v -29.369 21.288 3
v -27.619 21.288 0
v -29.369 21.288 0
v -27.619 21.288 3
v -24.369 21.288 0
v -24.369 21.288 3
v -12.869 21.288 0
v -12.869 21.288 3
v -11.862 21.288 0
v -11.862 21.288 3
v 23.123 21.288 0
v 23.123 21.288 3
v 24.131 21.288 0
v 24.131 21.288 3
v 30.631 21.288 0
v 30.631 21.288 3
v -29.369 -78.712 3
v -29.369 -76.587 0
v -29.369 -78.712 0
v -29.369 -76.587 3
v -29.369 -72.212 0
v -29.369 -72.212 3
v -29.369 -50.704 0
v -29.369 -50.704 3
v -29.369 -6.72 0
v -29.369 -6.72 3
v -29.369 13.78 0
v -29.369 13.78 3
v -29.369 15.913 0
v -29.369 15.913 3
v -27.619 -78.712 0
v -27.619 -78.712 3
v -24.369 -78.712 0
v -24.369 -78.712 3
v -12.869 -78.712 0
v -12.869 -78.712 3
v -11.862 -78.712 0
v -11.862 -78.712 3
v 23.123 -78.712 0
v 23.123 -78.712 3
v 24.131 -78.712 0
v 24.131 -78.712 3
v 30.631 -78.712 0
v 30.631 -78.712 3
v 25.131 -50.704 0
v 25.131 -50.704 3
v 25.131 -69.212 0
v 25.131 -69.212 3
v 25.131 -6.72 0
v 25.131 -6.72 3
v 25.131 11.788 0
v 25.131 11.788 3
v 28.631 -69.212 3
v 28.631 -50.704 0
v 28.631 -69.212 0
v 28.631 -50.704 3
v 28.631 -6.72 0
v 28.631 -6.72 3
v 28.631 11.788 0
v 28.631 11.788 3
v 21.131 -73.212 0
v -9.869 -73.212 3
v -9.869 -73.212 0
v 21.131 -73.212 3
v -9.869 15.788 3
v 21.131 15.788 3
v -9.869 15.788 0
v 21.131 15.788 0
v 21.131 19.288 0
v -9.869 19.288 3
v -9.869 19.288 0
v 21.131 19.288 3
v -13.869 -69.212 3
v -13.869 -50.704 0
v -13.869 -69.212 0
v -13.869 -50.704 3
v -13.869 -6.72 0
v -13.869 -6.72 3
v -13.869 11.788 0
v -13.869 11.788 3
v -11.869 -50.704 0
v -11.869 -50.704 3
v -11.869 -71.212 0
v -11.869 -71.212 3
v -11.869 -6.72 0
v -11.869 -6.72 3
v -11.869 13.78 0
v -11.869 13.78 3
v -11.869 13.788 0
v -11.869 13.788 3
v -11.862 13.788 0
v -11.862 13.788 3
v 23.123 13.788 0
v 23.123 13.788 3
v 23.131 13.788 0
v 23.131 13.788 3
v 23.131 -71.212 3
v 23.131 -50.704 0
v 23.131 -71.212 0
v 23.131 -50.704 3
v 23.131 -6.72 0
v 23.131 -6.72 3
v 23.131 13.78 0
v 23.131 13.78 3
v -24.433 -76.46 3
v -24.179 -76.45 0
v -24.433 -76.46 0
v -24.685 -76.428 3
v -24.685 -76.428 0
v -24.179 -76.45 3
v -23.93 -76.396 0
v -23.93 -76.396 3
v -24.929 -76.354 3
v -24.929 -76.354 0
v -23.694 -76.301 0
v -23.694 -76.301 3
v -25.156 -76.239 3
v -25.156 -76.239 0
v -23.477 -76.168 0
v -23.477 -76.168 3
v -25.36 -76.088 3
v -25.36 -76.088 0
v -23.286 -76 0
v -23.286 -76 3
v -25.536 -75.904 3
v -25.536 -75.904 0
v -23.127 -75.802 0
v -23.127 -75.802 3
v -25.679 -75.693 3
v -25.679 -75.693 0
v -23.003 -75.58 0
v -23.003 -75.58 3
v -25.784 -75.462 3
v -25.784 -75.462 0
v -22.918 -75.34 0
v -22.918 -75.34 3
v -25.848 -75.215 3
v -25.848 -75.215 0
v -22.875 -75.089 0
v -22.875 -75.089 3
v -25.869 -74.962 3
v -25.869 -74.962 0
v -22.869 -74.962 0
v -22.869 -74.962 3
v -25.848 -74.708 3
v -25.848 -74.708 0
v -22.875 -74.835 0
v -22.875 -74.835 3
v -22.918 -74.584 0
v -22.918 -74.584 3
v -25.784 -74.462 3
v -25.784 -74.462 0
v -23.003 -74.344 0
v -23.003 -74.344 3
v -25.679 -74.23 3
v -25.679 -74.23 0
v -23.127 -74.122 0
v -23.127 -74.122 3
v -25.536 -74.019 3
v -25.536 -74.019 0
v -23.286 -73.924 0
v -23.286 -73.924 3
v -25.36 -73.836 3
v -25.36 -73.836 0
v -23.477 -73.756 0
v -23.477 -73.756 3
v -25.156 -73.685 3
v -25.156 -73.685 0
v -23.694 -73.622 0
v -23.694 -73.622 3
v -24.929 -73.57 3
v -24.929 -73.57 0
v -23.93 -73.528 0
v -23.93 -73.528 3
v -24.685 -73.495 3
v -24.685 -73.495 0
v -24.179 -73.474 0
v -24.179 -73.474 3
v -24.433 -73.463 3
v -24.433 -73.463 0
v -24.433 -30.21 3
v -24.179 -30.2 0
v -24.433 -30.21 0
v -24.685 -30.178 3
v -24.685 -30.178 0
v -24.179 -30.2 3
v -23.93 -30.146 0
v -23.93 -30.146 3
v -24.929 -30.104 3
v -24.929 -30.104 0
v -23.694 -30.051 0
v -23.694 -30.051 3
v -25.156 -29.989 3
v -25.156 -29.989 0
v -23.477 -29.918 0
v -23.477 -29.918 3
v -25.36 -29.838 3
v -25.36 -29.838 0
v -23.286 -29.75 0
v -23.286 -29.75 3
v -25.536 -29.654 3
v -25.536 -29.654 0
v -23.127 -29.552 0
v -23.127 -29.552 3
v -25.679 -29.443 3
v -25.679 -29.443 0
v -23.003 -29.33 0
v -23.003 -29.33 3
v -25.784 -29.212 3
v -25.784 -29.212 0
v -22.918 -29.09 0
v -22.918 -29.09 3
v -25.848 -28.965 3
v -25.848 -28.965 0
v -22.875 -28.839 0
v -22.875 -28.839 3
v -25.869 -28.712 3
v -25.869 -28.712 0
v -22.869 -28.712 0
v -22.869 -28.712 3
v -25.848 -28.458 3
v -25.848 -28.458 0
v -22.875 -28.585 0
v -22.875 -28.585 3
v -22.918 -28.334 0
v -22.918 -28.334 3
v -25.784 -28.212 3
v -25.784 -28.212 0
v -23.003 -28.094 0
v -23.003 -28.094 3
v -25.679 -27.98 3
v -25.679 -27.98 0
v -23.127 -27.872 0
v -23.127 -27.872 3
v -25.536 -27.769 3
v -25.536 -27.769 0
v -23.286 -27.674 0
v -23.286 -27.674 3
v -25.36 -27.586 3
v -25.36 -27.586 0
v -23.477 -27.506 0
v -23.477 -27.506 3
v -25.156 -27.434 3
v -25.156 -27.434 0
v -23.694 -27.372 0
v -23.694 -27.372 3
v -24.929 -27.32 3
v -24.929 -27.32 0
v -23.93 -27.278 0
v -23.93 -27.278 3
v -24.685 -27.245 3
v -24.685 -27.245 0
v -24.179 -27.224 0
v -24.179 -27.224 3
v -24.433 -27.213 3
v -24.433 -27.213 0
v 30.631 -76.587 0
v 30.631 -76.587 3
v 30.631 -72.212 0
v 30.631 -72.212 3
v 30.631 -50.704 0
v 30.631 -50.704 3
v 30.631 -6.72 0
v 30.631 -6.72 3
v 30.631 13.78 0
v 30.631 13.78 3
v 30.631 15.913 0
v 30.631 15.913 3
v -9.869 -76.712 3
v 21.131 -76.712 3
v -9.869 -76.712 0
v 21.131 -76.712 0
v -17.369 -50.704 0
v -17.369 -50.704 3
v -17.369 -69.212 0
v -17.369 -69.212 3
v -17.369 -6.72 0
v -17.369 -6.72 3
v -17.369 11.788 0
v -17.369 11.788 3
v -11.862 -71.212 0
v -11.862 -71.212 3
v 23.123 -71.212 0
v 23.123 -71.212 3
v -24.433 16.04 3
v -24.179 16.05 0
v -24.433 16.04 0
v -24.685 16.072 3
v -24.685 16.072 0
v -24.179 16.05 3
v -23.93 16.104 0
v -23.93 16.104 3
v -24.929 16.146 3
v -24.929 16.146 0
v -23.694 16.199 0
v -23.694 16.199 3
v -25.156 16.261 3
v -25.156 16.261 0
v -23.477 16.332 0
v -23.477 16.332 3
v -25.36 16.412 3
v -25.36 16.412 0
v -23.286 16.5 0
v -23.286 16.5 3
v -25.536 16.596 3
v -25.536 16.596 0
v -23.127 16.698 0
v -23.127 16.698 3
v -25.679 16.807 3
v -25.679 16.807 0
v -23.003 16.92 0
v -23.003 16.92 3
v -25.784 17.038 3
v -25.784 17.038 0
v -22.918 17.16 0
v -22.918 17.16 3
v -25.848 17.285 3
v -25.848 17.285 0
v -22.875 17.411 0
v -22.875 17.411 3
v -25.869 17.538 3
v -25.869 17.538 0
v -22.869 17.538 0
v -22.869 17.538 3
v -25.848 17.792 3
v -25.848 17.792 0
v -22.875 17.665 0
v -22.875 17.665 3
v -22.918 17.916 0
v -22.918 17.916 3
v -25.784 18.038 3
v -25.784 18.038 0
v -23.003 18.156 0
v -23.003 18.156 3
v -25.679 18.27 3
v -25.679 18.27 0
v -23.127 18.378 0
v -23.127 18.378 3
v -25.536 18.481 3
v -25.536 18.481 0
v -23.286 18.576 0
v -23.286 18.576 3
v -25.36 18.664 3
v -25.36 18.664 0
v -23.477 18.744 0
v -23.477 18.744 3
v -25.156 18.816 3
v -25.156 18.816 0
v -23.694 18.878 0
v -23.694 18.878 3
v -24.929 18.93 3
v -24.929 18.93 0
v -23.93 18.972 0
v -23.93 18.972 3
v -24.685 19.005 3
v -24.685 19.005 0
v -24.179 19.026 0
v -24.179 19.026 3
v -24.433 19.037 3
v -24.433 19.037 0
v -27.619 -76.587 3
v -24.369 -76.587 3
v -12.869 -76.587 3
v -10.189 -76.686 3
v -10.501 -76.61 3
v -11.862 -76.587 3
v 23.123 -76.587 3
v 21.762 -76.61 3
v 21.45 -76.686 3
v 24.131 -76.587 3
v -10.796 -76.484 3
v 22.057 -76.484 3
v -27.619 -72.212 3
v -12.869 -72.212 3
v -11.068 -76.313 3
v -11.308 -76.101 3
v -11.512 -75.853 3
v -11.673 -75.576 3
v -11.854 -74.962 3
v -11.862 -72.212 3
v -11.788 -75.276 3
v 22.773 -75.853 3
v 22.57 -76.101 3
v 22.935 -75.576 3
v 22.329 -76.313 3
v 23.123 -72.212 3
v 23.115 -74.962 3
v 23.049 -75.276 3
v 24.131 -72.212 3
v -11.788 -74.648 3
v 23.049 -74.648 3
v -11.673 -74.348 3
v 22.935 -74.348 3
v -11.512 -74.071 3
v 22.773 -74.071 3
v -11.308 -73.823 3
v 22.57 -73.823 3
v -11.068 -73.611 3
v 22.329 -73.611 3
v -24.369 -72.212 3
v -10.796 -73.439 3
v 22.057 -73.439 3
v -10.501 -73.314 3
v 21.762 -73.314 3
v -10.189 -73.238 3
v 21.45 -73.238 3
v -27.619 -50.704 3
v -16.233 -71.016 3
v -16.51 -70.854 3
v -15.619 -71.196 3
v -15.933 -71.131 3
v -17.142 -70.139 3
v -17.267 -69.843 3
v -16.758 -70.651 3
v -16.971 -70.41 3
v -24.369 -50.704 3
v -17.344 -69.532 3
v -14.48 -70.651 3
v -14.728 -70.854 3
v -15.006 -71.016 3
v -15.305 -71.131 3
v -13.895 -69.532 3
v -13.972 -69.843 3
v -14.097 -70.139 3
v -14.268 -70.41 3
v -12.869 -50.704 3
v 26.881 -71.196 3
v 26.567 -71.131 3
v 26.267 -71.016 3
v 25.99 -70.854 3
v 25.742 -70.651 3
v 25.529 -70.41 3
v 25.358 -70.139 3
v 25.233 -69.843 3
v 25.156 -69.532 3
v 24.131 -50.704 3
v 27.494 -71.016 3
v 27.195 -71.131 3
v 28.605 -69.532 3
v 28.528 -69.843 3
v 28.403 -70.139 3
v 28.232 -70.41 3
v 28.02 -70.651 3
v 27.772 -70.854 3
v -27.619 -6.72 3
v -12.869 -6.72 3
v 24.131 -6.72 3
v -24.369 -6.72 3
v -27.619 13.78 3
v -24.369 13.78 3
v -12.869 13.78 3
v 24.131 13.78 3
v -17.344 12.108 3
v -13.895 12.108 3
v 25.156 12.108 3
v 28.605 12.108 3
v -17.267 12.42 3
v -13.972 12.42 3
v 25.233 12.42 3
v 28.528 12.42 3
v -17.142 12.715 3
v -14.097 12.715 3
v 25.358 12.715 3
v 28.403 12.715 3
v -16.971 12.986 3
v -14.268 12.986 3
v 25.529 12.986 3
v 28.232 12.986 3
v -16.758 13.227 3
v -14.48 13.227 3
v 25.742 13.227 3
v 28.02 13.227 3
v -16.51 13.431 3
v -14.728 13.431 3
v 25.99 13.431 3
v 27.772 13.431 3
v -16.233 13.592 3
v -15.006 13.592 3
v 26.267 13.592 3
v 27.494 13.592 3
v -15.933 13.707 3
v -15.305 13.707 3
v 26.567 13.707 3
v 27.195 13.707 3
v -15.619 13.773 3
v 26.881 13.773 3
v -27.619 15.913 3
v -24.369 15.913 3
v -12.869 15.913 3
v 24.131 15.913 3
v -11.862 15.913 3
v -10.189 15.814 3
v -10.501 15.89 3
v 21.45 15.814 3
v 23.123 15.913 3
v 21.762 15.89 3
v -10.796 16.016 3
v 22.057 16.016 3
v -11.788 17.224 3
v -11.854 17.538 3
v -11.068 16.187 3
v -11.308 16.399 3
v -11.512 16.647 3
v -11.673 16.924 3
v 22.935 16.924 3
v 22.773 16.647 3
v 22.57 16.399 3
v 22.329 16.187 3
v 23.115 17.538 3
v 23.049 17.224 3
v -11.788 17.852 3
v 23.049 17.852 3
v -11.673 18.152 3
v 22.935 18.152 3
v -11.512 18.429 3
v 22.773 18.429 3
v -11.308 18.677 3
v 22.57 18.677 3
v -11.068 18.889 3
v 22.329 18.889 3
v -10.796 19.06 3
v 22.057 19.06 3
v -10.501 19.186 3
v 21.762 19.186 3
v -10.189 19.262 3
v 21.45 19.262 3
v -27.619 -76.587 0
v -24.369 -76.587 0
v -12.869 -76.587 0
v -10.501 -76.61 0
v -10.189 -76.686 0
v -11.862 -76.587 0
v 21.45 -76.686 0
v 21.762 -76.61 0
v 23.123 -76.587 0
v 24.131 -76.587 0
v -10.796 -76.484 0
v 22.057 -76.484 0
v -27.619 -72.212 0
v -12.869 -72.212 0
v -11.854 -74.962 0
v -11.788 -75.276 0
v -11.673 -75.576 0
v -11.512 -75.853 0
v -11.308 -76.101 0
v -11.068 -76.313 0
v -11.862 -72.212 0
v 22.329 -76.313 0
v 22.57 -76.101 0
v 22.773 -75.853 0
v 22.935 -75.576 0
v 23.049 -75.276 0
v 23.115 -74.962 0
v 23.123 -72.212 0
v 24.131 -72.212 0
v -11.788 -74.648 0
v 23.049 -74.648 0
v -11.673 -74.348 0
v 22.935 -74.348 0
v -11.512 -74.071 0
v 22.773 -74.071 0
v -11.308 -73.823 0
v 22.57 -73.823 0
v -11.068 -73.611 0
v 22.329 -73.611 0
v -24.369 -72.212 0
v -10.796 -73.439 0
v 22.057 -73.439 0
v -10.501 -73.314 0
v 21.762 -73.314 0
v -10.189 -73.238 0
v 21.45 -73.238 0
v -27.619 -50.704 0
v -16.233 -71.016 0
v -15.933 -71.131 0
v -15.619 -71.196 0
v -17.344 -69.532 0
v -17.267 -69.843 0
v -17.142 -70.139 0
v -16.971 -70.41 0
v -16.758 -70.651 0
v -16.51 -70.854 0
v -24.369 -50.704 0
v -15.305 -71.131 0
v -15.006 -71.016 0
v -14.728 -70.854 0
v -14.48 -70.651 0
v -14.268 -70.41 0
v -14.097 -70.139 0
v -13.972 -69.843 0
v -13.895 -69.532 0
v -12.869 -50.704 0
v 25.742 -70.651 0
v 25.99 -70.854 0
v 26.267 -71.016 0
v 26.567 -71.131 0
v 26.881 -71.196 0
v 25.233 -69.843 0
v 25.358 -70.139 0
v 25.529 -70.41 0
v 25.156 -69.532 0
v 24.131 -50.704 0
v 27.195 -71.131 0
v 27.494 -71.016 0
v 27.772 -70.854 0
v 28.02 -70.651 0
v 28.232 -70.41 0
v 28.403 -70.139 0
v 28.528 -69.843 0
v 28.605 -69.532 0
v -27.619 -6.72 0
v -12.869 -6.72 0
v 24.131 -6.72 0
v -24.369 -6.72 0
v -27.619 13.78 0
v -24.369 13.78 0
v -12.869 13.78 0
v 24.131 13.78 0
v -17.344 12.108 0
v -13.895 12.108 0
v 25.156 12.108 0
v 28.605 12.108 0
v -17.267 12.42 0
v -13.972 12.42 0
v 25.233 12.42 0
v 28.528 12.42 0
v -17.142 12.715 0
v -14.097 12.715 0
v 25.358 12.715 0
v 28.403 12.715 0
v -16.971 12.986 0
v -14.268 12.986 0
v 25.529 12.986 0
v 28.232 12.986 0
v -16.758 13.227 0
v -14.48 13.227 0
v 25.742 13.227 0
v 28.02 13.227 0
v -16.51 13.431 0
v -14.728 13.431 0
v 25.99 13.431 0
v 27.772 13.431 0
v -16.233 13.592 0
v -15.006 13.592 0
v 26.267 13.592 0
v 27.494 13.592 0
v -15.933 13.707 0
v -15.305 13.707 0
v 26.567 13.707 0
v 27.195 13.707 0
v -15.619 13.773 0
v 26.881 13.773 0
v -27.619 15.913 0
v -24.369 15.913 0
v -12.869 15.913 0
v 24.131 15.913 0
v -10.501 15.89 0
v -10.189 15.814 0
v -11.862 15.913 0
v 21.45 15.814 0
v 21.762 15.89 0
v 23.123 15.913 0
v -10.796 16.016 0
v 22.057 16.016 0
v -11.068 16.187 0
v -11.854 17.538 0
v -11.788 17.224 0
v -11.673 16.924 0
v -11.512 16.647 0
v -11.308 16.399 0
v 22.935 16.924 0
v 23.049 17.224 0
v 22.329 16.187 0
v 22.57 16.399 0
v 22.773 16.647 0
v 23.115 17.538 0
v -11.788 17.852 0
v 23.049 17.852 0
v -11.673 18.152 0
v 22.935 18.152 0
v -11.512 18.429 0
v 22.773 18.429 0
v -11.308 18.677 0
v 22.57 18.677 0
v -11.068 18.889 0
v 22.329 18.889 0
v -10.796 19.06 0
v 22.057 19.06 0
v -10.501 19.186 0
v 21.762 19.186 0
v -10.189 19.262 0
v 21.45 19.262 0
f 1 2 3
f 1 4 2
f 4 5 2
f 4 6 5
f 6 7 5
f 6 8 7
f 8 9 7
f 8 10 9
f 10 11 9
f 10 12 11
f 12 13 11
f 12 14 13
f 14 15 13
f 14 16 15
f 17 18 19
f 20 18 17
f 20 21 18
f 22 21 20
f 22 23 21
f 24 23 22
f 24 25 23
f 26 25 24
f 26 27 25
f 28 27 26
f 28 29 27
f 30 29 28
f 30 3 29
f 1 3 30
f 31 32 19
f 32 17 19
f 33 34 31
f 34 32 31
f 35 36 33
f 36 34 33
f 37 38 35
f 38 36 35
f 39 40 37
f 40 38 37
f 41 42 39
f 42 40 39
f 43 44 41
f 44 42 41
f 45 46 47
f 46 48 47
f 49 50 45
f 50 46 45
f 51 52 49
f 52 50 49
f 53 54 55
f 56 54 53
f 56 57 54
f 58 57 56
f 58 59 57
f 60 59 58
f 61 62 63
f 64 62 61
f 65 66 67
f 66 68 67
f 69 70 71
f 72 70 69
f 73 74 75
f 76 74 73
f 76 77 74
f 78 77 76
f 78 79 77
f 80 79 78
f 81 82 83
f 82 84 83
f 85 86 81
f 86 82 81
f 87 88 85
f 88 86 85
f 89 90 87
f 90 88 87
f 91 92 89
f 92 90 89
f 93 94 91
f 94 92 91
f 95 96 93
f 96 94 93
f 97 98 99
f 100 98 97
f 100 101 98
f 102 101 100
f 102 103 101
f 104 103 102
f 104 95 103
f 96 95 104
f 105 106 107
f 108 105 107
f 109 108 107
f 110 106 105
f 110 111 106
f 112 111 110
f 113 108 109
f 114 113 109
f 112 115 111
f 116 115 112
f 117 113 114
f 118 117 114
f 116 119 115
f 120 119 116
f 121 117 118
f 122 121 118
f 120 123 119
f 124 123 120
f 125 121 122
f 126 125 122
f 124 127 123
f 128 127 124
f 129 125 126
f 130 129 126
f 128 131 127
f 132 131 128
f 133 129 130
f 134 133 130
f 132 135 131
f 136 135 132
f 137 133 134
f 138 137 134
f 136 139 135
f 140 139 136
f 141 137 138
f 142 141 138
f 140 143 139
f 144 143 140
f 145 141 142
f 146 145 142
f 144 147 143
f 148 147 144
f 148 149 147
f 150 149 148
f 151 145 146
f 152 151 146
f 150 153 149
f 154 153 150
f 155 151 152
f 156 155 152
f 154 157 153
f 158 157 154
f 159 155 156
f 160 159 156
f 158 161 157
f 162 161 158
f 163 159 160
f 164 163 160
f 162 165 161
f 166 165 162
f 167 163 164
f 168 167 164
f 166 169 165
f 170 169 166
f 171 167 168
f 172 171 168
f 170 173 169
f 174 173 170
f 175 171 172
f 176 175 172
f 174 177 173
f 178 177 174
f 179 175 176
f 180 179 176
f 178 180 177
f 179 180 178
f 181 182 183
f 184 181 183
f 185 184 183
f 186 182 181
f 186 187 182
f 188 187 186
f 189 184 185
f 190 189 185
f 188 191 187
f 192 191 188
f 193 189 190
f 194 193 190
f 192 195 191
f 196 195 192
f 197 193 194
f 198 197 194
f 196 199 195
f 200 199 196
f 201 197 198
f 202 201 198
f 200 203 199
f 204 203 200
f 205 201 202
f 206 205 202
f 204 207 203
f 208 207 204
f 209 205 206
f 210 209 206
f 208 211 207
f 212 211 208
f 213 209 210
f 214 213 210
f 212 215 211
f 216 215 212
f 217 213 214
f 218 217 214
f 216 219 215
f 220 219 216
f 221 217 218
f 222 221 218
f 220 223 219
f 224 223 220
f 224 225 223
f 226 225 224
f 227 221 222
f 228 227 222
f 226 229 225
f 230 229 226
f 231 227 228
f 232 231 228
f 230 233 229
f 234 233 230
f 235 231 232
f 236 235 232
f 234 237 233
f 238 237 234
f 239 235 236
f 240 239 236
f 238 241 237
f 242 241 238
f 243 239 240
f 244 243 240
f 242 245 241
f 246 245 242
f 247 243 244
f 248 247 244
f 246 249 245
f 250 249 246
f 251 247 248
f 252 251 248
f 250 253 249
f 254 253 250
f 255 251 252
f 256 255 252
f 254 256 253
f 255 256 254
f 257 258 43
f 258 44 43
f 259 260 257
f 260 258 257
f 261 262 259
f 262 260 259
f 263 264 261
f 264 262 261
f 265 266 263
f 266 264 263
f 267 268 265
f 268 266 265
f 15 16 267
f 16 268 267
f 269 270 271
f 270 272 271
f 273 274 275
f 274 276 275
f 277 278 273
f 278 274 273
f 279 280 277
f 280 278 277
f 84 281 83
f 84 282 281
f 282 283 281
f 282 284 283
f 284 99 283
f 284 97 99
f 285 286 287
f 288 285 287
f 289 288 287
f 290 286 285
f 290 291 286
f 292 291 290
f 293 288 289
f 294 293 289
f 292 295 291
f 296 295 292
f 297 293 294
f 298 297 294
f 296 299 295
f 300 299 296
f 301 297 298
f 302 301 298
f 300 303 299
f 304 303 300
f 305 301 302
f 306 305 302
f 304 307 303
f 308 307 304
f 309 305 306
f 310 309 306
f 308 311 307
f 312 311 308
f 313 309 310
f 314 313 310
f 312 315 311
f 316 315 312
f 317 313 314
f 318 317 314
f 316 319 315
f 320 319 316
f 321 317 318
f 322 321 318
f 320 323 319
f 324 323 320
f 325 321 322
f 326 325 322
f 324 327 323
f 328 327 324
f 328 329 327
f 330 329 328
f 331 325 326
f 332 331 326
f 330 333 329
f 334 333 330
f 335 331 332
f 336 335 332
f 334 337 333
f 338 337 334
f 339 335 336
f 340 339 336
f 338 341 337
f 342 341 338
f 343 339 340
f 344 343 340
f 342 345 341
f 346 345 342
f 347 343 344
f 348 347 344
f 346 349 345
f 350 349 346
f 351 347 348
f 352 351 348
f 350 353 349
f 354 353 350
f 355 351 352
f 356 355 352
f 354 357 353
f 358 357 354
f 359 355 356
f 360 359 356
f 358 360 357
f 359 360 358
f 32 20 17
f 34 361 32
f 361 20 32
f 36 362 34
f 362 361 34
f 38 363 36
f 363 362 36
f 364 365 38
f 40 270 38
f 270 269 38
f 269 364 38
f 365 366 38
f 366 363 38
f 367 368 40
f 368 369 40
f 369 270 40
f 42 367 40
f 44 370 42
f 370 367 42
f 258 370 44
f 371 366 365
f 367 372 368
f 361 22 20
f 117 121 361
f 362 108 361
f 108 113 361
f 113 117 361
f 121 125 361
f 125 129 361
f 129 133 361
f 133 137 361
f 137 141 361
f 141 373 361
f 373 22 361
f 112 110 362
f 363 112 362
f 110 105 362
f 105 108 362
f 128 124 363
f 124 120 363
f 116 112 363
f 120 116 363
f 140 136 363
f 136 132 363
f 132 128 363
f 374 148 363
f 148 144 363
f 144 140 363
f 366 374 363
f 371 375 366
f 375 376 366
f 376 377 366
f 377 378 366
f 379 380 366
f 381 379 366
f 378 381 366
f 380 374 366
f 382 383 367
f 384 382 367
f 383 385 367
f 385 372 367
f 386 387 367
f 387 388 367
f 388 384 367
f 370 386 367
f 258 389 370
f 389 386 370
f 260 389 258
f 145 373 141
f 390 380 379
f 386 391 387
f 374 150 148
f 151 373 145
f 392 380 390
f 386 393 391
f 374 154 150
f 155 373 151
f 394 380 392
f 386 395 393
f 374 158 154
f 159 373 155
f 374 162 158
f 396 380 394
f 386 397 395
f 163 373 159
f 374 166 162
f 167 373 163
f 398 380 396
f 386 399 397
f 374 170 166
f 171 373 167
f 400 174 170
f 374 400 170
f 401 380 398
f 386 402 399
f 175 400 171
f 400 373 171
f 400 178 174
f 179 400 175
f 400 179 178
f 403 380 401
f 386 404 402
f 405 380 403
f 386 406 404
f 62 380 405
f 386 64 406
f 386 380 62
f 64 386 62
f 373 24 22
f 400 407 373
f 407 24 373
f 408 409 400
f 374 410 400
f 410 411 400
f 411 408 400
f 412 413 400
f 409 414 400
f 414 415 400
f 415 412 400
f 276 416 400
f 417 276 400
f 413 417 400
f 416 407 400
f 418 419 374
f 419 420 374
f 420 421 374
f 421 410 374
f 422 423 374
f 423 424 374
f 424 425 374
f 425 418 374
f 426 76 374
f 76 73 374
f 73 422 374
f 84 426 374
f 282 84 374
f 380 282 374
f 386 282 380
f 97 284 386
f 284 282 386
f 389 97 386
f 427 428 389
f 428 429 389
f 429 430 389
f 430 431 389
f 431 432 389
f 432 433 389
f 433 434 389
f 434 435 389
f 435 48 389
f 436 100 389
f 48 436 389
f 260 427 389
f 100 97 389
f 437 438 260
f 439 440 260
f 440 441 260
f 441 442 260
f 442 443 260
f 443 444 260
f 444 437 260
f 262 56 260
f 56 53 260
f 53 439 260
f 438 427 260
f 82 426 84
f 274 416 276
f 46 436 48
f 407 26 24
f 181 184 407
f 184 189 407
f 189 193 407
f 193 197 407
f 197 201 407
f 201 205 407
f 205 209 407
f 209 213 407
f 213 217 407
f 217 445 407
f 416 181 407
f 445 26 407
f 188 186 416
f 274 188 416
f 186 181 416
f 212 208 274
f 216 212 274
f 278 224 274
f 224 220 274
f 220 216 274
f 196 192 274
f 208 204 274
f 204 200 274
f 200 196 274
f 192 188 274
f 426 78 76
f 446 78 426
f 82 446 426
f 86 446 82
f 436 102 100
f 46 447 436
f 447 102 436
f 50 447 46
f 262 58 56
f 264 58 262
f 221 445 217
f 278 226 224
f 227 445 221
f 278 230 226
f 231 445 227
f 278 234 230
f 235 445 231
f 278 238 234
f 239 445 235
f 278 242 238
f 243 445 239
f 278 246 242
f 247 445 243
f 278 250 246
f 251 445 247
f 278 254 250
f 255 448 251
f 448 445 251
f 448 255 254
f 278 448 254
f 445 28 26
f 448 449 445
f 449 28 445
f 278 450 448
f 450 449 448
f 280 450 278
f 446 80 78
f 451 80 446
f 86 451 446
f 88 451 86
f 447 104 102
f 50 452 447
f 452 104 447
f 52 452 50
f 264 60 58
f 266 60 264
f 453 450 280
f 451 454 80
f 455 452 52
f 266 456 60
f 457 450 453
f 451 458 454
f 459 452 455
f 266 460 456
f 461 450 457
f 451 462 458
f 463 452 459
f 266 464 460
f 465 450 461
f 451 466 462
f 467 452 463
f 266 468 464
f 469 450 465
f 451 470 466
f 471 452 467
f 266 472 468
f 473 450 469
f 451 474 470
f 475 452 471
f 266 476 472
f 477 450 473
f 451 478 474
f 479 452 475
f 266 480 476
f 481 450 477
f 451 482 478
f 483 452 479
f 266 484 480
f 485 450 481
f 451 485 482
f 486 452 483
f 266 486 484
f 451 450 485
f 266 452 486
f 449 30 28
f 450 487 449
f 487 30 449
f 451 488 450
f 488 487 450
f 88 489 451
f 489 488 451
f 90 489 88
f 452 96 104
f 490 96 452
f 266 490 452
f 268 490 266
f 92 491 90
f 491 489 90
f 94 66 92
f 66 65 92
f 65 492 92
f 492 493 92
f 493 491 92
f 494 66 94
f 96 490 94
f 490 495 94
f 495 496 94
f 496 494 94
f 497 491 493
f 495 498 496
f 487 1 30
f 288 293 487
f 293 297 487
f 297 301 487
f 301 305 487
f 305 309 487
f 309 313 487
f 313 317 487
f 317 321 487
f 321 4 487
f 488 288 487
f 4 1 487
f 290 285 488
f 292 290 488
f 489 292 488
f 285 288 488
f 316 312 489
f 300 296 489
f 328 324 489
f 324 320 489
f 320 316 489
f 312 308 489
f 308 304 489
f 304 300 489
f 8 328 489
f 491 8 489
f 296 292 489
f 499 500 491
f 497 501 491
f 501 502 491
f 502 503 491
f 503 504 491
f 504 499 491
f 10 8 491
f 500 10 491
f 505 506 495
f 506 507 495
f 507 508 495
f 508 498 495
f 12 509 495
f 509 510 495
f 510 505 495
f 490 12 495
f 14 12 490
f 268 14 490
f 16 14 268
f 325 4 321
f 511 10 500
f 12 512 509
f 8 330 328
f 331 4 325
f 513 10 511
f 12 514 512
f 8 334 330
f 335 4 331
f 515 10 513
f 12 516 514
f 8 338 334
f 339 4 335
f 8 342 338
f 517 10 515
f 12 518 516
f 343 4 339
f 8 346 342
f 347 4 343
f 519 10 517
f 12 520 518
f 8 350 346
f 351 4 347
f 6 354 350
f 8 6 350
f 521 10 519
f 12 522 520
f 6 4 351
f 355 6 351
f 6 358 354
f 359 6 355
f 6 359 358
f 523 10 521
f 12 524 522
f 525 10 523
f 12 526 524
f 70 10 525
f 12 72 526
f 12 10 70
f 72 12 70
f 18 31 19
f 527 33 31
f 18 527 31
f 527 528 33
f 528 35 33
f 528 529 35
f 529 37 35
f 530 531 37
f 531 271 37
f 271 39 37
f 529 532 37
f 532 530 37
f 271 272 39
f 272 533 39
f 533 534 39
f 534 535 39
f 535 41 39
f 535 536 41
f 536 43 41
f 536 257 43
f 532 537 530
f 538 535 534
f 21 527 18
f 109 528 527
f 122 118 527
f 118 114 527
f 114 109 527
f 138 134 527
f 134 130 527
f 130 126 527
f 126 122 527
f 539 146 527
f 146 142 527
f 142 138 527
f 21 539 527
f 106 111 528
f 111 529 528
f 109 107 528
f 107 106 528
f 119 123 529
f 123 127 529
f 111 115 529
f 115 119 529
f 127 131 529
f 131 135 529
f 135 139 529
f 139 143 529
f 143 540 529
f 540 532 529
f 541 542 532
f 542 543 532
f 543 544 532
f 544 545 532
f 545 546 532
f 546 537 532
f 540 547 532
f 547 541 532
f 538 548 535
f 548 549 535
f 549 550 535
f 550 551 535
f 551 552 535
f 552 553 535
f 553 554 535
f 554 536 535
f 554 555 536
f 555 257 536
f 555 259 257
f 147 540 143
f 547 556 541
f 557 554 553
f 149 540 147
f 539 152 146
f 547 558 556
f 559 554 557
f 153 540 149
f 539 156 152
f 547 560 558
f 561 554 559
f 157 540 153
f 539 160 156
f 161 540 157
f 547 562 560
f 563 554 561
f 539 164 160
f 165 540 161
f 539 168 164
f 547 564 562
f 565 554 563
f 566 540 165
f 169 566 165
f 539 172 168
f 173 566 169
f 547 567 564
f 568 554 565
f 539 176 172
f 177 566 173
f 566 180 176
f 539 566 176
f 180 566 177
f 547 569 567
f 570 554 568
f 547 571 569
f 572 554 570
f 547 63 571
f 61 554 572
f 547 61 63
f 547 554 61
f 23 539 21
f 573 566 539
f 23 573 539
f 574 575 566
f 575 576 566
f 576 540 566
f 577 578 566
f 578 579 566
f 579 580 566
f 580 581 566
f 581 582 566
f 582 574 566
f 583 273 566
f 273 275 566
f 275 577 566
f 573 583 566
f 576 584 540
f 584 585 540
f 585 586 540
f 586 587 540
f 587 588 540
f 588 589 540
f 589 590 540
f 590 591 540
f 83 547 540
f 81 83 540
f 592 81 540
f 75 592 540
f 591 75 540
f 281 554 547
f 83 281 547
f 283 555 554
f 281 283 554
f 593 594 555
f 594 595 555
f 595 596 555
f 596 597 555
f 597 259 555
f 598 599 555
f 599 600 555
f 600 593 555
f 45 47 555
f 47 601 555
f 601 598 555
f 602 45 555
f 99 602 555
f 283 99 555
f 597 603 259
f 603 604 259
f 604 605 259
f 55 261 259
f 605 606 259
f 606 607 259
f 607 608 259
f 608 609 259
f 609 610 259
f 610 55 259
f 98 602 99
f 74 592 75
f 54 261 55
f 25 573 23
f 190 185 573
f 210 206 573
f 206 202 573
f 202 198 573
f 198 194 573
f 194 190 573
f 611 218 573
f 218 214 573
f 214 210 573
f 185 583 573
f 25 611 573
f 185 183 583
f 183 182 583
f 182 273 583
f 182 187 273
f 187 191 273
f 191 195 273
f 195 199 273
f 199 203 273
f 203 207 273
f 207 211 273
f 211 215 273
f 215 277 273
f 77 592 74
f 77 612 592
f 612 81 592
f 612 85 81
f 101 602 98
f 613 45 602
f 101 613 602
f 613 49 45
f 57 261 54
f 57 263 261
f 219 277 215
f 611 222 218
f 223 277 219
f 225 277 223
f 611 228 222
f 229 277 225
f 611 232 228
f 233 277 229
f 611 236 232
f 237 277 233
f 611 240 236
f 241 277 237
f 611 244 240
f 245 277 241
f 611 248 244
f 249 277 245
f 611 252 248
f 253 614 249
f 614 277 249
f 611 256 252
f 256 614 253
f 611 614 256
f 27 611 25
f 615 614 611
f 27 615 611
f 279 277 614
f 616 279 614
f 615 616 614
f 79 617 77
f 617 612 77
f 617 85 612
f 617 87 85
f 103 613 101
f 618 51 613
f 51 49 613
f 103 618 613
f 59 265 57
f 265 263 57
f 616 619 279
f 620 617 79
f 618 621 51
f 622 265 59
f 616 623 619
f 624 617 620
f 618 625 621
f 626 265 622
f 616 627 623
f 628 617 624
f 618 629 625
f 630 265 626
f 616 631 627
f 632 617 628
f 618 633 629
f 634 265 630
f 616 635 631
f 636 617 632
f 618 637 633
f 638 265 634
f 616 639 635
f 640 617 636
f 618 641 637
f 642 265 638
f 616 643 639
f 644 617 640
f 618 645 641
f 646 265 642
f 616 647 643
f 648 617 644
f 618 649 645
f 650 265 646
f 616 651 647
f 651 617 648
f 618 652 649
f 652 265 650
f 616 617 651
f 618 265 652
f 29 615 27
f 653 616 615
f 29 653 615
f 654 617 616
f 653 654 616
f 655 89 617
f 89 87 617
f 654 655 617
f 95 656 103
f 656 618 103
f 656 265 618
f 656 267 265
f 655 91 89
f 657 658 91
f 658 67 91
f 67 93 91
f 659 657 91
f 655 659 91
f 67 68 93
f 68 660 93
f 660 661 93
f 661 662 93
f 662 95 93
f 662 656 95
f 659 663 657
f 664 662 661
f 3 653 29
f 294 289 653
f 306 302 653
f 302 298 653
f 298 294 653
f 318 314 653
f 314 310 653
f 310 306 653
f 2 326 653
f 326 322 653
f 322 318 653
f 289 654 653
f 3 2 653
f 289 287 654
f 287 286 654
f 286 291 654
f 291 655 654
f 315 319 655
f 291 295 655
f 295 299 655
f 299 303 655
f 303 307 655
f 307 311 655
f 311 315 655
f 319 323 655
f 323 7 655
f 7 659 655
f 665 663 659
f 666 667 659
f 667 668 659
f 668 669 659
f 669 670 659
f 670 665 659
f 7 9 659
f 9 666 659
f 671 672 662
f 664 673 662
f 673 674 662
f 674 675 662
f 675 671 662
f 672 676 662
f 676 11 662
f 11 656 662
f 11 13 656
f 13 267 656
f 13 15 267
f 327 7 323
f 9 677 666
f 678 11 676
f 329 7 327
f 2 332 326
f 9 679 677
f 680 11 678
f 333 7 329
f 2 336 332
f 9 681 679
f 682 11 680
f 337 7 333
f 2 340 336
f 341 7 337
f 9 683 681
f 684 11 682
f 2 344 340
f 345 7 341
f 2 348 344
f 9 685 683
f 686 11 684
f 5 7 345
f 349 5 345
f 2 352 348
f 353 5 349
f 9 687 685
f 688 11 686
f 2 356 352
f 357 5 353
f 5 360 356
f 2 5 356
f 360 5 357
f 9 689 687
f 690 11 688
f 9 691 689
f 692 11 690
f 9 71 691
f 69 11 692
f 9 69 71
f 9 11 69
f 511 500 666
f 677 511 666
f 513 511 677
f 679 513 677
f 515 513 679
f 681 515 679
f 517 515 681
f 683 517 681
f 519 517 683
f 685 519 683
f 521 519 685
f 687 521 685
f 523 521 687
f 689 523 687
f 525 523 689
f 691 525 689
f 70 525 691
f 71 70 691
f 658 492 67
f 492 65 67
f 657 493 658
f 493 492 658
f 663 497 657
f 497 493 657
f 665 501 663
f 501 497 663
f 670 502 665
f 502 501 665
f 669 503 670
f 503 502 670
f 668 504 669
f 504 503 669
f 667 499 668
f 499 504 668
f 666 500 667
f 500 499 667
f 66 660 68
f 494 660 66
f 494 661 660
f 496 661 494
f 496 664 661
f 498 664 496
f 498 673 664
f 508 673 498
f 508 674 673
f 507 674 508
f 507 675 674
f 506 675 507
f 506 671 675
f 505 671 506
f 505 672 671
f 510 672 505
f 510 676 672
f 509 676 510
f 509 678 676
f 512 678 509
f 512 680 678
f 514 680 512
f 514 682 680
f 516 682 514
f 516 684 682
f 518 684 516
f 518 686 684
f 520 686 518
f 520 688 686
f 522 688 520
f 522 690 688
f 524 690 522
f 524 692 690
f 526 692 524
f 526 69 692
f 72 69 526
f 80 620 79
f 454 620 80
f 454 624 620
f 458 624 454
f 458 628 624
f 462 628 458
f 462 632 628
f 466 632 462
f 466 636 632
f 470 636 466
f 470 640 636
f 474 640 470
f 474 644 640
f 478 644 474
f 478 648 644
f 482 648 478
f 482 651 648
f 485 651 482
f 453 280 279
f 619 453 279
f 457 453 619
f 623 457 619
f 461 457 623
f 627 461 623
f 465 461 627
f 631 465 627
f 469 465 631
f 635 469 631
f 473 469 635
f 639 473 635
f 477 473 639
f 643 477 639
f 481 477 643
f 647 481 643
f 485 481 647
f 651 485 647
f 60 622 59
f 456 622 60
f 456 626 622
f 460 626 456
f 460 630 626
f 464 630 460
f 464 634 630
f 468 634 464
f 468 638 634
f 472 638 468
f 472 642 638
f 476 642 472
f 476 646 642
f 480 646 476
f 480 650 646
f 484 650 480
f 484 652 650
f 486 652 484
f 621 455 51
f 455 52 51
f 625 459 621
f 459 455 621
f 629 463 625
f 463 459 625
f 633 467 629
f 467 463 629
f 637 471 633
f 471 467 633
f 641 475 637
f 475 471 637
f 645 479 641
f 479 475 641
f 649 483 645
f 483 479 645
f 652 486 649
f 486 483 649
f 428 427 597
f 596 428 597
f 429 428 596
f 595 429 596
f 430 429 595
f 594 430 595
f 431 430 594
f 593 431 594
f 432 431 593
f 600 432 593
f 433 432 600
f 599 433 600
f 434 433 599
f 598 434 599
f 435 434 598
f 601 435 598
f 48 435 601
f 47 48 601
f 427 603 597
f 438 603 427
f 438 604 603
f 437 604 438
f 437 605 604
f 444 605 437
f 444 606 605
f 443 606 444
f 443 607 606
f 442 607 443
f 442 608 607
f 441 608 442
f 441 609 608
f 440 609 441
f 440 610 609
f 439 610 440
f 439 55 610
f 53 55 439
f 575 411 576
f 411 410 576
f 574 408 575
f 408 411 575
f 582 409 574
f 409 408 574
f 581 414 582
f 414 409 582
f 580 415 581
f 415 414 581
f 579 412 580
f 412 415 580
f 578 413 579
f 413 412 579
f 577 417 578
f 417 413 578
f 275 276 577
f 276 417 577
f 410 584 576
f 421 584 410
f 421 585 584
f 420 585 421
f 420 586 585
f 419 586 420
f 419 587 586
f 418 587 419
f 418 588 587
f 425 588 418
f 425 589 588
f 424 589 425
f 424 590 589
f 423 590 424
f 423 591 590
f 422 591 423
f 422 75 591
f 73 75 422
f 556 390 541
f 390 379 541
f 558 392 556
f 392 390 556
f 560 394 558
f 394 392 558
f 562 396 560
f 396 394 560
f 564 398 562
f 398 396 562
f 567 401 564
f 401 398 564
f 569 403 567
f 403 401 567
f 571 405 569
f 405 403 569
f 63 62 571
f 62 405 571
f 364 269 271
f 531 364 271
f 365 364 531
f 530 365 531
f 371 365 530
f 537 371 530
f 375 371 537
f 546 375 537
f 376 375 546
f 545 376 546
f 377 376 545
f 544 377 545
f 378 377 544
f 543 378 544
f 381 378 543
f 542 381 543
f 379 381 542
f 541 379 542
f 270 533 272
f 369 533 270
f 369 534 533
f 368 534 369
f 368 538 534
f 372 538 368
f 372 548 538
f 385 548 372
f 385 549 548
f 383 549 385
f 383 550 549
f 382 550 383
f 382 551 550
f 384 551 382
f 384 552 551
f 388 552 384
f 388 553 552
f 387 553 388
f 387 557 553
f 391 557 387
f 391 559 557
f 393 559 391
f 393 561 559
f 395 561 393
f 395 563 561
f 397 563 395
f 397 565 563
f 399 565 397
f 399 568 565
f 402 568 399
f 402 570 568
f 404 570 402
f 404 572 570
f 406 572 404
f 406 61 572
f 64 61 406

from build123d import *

# Parameters (mm, degrees)
SKETCH2_W           = 60
SKETCH2_H           = 100
SKETCH2_R           = 1.5
SKETCH2_W_2         = 3.5
SKETCH2_H_2         = 85
SKETCH2_W_3         = 35
SKETCH2_H_3         = 3.5
BOSS_EXTRUDE1_DEPTH = 3
FILLET1_R           = 2


with BuildPart() as part:
    # Sketch2 → Boss-Extrude1 (new body)
    with BuildSketch(Plane.XY):
        with Locations((0.630630631, -28.711797537)):
            Rectangle(SKETCH2_W, SKETCH2_H)
        with Locations((-24.369369369, -74.961797537)):
            Circle(SKETCH2_R, mode=Mode.SUBTRACT)
        with Locations((-24.369369369, -28.711797537)):
            Circle(SKETCH2_R, mode=Mode.SUBTRACT)
        with Locations((-15.619369369, -28.711797537)):
            Rectangle(SKETCH2_W_2, SKETCH2_H_2, mode=Mode.SUBTRACT)
        with Locations((5.630630631, -74.961797537)):
            Rectangle(SKETCH2_W_3, SKETCH2_H_3, mode=Mode.SUBTRACT)
        with Locations((26.880630631, -28.711797537)):
            Rectangle(SKETCH2_W_2, SKETCH2_H_2, mode=Mode.SUBTRACT)
        with Locations((-24.369369369, 17.538202463)):
            Circle(SKETCH2_R, mode=Mode.SUBTRACT)
        with Locations((5.630630631, -28.711797537)):
            Rectangle(SKETCH2_W_3, SKETCH2_H_2, mode=Mode.SUBTRACT)
        with Locations((5.630630631, 17.538202463)):
            Rectangle(SKETCH2_W_3, SKETCH2_H_3, mode=Mode.SUBTRACT)
    extrude(amount=BOSS_EXTRUDE1_DEPTH)

    # Fillet1
    # the kernel refuses this fillet: 2 mm, written as the material it adds along each edge
    with BuildSketch(Plane(origin=(-11.869369369, 15.788202463, 0), x_dir=(1, 0, 0), z_dir=(0, 0, 1)), Plane(origin=(23.130630631, 19.288202463, 0), x_dir=(-1, 0, 0), z_dir=(0, 0, 1)), Plane(origin=(-11.869369369, 19.288202463, 0), x_dir=(0, -1, 0), z_dir=(0, 0, 1)), Plane(origin=(-17.369369369, 13.788202463, 0), x_dir=(0, -1, 0), z_dir=(0, 0, 1)), Plane(origin=(25.130630631, 13.788202463, 0), x_dir=(0, -1, 0), z_dir=(0, 0, 1)), Plane(origin=(28.630630631, 13.788202463, 0), x_dir=(-1, 0, 0), z_dir=(0, 0, 1)), Plane(origin=(-13.869369369, 13.788202463, 0), x_dir=(-1, 0, 0), z_dir=(0, 0, 1)), Plane(origin=(-13.869369369, -71.211797537, 0), x_dir=(0, 1, 0), z_dir=(0, 0, 1)), Plane(origin=(25.130630631, -71.211797537, 0), x_dir=(1, 0, 0), z_dir=(0, 0, 1)), Plane(origin=(-11.869369369, -76.711797537, 0), x_dir=(1, 0, 0), z_dir=(0, 0, 1)), Plane(origin=(23.130630631, -73.211797537, 0), x_dir=(-1, 0, 0), z_dir=(0, 0, 1)), Plane(origin=(23.130630631, -76.711797537, 0), x_dir=(0, 1, 0), z_dir=(0, 0, 1))) as fillet1_piece_1:
        with BuildLine():
            CenterArc((FILLET1_R, FILLET1_R), FILLET1_R, 180, 90)
            Line((0, FILLET1_R), (0, 0))
            Line((0, 0), (FILLET1_R, 0))
        make_face()
    extrude(amount=3)
    with BuildSketch(Plane(origin=(23.130630631, 15.788202463, 0), x_dir=(-1, 0, 0), z_dir=(0, 0, 1)), Plane(origin=(28.630630631, -71.211797537, 0), x_dir=(-1, 0, 0), z_dir=(0, 0, 1)), Plane(origin=(-17.369369369, -71.211797537, 0), x_dir=(0, 1, 0), z_dir=(0, 0, 1)), Plane(origin=(-11.869369369, -73.211797537, 0), x_dir=(1, 0, 0), z_dir=(0, 0, 1))) as fillet1_piece_2:
        with BuildLine():
            CenterArc((FILLET1_R, -FILLET1_R), FILLET1_R, 90, 90)
            Line((0, -FILLET1_R), (0, 0))
            Line((0, 0), (FILLET1_R, 0))
        make_face()
    extrude(amount=3)


solid = part.part
